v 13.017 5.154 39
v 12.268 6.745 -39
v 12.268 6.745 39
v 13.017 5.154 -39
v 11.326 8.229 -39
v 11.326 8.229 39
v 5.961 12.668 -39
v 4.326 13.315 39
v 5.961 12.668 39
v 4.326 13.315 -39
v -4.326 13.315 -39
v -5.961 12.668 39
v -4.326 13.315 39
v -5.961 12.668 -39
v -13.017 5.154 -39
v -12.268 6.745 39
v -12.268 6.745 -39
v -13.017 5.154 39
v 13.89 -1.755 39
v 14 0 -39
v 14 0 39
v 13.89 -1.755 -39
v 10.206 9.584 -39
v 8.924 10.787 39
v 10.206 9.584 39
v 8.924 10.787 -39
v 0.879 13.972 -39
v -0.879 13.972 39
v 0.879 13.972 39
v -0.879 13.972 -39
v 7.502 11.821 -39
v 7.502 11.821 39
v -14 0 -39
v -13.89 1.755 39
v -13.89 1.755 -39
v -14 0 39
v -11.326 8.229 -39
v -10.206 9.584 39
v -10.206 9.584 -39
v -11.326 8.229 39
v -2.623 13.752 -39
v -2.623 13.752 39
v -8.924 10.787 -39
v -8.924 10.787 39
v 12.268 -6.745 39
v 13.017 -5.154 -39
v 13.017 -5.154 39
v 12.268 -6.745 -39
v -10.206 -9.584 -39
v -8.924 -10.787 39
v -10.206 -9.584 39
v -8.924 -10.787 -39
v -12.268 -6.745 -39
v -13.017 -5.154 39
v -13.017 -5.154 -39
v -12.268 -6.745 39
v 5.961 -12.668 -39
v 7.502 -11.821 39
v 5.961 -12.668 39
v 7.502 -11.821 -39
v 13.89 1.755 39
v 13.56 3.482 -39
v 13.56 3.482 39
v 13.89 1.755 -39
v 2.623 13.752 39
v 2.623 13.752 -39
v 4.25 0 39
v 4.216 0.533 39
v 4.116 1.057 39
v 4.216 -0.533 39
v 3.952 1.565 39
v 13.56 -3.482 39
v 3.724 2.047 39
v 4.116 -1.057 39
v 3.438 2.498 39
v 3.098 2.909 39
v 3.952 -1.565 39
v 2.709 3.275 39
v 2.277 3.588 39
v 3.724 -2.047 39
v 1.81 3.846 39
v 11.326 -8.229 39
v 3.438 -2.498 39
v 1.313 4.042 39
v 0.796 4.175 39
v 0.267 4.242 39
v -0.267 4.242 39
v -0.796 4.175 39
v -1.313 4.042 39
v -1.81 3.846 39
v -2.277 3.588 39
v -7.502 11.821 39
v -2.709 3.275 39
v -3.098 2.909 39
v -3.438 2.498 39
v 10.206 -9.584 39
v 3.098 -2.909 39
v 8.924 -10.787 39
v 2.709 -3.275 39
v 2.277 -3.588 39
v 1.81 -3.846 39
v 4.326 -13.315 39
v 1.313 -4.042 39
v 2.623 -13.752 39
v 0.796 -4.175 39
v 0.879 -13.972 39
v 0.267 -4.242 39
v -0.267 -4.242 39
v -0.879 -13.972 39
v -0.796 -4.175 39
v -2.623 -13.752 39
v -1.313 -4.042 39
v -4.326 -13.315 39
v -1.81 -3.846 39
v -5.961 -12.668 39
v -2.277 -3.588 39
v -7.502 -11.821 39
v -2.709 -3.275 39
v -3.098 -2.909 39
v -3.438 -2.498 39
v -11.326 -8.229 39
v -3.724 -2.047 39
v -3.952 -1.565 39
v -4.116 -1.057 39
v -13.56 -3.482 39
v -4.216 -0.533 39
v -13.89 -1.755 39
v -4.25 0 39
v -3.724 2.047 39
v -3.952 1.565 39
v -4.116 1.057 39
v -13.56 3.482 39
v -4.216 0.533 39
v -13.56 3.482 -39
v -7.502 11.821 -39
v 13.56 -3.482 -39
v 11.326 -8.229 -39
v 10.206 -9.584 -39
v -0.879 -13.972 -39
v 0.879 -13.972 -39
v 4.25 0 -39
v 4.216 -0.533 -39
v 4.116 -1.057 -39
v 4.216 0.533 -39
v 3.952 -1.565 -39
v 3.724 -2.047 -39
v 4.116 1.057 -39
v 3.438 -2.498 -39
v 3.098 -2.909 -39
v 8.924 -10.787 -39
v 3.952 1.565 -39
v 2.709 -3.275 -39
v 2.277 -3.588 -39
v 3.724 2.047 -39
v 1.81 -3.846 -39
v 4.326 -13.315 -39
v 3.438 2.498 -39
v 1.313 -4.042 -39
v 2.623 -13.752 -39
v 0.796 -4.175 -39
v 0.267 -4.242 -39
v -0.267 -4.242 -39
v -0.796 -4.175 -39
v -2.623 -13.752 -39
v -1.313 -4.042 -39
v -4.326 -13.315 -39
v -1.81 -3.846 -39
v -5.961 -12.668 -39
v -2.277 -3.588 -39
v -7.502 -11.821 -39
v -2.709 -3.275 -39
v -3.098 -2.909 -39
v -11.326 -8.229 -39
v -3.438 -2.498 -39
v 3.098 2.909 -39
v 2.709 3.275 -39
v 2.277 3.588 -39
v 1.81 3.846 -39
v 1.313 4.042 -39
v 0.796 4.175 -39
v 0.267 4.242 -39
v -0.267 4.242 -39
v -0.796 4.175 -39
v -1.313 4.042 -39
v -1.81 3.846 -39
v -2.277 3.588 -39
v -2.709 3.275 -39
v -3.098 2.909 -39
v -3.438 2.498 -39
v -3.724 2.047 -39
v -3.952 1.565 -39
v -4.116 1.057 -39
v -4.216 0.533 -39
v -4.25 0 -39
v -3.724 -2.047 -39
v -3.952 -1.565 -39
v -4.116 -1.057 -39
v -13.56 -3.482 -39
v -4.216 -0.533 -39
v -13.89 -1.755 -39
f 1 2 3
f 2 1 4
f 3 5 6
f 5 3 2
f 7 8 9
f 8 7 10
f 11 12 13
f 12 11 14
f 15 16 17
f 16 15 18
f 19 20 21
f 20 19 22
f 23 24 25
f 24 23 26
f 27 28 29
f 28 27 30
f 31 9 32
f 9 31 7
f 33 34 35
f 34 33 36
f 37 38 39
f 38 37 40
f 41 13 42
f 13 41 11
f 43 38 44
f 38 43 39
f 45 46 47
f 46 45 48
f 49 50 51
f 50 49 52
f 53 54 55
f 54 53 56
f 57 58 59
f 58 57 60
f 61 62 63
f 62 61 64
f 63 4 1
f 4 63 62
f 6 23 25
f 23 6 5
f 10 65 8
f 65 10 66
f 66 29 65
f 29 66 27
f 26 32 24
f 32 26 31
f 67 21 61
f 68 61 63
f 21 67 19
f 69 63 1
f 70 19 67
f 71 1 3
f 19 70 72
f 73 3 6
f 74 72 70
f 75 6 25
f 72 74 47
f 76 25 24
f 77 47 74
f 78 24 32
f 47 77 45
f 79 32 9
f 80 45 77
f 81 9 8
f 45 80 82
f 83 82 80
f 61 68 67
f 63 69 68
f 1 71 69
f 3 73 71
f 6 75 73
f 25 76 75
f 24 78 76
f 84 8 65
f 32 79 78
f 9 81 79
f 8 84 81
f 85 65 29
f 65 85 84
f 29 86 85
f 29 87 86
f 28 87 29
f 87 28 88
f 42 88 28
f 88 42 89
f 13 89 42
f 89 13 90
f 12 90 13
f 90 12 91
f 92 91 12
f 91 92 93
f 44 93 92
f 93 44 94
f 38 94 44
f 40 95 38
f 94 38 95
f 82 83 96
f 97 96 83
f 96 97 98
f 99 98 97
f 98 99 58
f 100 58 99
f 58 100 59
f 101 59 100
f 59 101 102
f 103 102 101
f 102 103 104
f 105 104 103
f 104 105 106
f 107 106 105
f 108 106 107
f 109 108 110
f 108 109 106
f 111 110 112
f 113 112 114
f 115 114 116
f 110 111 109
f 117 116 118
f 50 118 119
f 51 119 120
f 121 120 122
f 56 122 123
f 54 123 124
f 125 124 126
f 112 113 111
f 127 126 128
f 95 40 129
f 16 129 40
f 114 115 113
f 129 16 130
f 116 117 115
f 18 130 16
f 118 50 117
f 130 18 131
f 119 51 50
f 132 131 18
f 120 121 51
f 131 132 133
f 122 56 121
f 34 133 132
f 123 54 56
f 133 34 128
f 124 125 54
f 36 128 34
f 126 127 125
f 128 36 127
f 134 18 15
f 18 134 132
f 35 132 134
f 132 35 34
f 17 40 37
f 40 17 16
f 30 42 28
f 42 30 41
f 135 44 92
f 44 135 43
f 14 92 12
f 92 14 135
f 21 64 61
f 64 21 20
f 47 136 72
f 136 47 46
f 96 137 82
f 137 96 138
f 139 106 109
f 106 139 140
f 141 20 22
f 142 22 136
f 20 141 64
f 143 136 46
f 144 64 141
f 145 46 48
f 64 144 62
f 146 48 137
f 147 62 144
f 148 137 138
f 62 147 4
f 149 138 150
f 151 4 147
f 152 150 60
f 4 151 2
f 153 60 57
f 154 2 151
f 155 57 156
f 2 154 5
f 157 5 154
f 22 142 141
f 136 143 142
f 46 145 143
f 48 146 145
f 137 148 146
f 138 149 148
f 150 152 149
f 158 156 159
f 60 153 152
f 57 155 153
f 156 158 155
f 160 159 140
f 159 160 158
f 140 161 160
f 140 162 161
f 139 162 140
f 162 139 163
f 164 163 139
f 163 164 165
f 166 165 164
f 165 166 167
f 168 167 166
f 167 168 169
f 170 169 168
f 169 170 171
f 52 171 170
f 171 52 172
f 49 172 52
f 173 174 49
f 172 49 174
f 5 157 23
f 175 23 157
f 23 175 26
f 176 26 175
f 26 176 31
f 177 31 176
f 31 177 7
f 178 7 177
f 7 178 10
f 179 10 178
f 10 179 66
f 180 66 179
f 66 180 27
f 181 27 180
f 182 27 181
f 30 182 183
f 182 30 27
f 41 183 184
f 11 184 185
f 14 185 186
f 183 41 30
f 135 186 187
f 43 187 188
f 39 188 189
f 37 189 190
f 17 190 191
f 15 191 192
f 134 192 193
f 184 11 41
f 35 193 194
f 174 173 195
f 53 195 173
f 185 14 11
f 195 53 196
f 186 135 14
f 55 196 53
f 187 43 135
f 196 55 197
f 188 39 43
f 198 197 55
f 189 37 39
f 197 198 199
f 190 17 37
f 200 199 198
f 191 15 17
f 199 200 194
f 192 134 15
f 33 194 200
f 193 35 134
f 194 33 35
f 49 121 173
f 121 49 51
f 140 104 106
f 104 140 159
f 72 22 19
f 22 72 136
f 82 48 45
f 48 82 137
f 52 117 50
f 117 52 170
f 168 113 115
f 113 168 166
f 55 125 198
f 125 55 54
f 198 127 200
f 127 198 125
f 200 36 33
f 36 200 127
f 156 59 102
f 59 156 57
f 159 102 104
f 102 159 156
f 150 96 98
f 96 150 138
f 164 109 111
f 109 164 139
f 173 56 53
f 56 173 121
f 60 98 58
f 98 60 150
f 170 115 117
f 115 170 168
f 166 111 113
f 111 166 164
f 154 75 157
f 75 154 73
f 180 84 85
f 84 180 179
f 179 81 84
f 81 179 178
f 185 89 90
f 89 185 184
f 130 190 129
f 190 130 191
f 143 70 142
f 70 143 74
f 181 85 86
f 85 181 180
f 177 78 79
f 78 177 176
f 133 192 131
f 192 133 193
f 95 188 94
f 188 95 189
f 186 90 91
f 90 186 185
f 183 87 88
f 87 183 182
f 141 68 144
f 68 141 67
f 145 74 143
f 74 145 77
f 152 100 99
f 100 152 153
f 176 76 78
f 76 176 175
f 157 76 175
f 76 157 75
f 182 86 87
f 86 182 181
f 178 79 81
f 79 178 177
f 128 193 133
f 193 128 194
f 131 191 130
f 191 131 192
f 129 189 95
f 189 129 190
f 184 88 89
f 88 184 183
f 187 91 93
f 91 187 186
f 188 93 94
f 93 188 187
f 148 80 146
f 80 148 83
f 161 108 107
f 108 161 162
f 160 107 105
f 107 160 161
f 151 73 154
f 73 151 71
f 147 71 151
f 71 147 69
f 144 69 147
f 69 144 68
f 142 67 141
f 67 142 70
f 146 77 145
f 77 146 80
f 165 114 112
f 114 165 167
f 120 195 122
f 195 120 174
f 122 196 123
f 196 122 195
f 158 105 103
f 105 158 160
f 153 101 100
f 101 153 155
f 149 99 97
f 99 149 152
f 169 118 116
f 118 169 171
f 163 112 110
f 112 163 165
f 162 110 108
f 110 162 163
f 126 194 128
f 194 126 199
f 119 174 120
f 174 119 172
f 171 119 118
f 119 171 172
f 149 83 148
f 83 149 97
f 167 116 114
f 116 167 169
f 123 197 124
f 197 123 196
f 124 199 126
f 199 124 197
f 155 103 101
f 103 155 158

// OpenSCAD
$fn = 50;


difference() {
	union() {
		translate(v = [0, 0, -39.0000000000]) {
			cylinder(h = 78, r = 14.0000000000);
		}
	}
	union() {
		translate(v = [0, 0, -100.0000000000]) {
			cylinder(h = 200, r = 4.2500000000);
		}
	}
}
